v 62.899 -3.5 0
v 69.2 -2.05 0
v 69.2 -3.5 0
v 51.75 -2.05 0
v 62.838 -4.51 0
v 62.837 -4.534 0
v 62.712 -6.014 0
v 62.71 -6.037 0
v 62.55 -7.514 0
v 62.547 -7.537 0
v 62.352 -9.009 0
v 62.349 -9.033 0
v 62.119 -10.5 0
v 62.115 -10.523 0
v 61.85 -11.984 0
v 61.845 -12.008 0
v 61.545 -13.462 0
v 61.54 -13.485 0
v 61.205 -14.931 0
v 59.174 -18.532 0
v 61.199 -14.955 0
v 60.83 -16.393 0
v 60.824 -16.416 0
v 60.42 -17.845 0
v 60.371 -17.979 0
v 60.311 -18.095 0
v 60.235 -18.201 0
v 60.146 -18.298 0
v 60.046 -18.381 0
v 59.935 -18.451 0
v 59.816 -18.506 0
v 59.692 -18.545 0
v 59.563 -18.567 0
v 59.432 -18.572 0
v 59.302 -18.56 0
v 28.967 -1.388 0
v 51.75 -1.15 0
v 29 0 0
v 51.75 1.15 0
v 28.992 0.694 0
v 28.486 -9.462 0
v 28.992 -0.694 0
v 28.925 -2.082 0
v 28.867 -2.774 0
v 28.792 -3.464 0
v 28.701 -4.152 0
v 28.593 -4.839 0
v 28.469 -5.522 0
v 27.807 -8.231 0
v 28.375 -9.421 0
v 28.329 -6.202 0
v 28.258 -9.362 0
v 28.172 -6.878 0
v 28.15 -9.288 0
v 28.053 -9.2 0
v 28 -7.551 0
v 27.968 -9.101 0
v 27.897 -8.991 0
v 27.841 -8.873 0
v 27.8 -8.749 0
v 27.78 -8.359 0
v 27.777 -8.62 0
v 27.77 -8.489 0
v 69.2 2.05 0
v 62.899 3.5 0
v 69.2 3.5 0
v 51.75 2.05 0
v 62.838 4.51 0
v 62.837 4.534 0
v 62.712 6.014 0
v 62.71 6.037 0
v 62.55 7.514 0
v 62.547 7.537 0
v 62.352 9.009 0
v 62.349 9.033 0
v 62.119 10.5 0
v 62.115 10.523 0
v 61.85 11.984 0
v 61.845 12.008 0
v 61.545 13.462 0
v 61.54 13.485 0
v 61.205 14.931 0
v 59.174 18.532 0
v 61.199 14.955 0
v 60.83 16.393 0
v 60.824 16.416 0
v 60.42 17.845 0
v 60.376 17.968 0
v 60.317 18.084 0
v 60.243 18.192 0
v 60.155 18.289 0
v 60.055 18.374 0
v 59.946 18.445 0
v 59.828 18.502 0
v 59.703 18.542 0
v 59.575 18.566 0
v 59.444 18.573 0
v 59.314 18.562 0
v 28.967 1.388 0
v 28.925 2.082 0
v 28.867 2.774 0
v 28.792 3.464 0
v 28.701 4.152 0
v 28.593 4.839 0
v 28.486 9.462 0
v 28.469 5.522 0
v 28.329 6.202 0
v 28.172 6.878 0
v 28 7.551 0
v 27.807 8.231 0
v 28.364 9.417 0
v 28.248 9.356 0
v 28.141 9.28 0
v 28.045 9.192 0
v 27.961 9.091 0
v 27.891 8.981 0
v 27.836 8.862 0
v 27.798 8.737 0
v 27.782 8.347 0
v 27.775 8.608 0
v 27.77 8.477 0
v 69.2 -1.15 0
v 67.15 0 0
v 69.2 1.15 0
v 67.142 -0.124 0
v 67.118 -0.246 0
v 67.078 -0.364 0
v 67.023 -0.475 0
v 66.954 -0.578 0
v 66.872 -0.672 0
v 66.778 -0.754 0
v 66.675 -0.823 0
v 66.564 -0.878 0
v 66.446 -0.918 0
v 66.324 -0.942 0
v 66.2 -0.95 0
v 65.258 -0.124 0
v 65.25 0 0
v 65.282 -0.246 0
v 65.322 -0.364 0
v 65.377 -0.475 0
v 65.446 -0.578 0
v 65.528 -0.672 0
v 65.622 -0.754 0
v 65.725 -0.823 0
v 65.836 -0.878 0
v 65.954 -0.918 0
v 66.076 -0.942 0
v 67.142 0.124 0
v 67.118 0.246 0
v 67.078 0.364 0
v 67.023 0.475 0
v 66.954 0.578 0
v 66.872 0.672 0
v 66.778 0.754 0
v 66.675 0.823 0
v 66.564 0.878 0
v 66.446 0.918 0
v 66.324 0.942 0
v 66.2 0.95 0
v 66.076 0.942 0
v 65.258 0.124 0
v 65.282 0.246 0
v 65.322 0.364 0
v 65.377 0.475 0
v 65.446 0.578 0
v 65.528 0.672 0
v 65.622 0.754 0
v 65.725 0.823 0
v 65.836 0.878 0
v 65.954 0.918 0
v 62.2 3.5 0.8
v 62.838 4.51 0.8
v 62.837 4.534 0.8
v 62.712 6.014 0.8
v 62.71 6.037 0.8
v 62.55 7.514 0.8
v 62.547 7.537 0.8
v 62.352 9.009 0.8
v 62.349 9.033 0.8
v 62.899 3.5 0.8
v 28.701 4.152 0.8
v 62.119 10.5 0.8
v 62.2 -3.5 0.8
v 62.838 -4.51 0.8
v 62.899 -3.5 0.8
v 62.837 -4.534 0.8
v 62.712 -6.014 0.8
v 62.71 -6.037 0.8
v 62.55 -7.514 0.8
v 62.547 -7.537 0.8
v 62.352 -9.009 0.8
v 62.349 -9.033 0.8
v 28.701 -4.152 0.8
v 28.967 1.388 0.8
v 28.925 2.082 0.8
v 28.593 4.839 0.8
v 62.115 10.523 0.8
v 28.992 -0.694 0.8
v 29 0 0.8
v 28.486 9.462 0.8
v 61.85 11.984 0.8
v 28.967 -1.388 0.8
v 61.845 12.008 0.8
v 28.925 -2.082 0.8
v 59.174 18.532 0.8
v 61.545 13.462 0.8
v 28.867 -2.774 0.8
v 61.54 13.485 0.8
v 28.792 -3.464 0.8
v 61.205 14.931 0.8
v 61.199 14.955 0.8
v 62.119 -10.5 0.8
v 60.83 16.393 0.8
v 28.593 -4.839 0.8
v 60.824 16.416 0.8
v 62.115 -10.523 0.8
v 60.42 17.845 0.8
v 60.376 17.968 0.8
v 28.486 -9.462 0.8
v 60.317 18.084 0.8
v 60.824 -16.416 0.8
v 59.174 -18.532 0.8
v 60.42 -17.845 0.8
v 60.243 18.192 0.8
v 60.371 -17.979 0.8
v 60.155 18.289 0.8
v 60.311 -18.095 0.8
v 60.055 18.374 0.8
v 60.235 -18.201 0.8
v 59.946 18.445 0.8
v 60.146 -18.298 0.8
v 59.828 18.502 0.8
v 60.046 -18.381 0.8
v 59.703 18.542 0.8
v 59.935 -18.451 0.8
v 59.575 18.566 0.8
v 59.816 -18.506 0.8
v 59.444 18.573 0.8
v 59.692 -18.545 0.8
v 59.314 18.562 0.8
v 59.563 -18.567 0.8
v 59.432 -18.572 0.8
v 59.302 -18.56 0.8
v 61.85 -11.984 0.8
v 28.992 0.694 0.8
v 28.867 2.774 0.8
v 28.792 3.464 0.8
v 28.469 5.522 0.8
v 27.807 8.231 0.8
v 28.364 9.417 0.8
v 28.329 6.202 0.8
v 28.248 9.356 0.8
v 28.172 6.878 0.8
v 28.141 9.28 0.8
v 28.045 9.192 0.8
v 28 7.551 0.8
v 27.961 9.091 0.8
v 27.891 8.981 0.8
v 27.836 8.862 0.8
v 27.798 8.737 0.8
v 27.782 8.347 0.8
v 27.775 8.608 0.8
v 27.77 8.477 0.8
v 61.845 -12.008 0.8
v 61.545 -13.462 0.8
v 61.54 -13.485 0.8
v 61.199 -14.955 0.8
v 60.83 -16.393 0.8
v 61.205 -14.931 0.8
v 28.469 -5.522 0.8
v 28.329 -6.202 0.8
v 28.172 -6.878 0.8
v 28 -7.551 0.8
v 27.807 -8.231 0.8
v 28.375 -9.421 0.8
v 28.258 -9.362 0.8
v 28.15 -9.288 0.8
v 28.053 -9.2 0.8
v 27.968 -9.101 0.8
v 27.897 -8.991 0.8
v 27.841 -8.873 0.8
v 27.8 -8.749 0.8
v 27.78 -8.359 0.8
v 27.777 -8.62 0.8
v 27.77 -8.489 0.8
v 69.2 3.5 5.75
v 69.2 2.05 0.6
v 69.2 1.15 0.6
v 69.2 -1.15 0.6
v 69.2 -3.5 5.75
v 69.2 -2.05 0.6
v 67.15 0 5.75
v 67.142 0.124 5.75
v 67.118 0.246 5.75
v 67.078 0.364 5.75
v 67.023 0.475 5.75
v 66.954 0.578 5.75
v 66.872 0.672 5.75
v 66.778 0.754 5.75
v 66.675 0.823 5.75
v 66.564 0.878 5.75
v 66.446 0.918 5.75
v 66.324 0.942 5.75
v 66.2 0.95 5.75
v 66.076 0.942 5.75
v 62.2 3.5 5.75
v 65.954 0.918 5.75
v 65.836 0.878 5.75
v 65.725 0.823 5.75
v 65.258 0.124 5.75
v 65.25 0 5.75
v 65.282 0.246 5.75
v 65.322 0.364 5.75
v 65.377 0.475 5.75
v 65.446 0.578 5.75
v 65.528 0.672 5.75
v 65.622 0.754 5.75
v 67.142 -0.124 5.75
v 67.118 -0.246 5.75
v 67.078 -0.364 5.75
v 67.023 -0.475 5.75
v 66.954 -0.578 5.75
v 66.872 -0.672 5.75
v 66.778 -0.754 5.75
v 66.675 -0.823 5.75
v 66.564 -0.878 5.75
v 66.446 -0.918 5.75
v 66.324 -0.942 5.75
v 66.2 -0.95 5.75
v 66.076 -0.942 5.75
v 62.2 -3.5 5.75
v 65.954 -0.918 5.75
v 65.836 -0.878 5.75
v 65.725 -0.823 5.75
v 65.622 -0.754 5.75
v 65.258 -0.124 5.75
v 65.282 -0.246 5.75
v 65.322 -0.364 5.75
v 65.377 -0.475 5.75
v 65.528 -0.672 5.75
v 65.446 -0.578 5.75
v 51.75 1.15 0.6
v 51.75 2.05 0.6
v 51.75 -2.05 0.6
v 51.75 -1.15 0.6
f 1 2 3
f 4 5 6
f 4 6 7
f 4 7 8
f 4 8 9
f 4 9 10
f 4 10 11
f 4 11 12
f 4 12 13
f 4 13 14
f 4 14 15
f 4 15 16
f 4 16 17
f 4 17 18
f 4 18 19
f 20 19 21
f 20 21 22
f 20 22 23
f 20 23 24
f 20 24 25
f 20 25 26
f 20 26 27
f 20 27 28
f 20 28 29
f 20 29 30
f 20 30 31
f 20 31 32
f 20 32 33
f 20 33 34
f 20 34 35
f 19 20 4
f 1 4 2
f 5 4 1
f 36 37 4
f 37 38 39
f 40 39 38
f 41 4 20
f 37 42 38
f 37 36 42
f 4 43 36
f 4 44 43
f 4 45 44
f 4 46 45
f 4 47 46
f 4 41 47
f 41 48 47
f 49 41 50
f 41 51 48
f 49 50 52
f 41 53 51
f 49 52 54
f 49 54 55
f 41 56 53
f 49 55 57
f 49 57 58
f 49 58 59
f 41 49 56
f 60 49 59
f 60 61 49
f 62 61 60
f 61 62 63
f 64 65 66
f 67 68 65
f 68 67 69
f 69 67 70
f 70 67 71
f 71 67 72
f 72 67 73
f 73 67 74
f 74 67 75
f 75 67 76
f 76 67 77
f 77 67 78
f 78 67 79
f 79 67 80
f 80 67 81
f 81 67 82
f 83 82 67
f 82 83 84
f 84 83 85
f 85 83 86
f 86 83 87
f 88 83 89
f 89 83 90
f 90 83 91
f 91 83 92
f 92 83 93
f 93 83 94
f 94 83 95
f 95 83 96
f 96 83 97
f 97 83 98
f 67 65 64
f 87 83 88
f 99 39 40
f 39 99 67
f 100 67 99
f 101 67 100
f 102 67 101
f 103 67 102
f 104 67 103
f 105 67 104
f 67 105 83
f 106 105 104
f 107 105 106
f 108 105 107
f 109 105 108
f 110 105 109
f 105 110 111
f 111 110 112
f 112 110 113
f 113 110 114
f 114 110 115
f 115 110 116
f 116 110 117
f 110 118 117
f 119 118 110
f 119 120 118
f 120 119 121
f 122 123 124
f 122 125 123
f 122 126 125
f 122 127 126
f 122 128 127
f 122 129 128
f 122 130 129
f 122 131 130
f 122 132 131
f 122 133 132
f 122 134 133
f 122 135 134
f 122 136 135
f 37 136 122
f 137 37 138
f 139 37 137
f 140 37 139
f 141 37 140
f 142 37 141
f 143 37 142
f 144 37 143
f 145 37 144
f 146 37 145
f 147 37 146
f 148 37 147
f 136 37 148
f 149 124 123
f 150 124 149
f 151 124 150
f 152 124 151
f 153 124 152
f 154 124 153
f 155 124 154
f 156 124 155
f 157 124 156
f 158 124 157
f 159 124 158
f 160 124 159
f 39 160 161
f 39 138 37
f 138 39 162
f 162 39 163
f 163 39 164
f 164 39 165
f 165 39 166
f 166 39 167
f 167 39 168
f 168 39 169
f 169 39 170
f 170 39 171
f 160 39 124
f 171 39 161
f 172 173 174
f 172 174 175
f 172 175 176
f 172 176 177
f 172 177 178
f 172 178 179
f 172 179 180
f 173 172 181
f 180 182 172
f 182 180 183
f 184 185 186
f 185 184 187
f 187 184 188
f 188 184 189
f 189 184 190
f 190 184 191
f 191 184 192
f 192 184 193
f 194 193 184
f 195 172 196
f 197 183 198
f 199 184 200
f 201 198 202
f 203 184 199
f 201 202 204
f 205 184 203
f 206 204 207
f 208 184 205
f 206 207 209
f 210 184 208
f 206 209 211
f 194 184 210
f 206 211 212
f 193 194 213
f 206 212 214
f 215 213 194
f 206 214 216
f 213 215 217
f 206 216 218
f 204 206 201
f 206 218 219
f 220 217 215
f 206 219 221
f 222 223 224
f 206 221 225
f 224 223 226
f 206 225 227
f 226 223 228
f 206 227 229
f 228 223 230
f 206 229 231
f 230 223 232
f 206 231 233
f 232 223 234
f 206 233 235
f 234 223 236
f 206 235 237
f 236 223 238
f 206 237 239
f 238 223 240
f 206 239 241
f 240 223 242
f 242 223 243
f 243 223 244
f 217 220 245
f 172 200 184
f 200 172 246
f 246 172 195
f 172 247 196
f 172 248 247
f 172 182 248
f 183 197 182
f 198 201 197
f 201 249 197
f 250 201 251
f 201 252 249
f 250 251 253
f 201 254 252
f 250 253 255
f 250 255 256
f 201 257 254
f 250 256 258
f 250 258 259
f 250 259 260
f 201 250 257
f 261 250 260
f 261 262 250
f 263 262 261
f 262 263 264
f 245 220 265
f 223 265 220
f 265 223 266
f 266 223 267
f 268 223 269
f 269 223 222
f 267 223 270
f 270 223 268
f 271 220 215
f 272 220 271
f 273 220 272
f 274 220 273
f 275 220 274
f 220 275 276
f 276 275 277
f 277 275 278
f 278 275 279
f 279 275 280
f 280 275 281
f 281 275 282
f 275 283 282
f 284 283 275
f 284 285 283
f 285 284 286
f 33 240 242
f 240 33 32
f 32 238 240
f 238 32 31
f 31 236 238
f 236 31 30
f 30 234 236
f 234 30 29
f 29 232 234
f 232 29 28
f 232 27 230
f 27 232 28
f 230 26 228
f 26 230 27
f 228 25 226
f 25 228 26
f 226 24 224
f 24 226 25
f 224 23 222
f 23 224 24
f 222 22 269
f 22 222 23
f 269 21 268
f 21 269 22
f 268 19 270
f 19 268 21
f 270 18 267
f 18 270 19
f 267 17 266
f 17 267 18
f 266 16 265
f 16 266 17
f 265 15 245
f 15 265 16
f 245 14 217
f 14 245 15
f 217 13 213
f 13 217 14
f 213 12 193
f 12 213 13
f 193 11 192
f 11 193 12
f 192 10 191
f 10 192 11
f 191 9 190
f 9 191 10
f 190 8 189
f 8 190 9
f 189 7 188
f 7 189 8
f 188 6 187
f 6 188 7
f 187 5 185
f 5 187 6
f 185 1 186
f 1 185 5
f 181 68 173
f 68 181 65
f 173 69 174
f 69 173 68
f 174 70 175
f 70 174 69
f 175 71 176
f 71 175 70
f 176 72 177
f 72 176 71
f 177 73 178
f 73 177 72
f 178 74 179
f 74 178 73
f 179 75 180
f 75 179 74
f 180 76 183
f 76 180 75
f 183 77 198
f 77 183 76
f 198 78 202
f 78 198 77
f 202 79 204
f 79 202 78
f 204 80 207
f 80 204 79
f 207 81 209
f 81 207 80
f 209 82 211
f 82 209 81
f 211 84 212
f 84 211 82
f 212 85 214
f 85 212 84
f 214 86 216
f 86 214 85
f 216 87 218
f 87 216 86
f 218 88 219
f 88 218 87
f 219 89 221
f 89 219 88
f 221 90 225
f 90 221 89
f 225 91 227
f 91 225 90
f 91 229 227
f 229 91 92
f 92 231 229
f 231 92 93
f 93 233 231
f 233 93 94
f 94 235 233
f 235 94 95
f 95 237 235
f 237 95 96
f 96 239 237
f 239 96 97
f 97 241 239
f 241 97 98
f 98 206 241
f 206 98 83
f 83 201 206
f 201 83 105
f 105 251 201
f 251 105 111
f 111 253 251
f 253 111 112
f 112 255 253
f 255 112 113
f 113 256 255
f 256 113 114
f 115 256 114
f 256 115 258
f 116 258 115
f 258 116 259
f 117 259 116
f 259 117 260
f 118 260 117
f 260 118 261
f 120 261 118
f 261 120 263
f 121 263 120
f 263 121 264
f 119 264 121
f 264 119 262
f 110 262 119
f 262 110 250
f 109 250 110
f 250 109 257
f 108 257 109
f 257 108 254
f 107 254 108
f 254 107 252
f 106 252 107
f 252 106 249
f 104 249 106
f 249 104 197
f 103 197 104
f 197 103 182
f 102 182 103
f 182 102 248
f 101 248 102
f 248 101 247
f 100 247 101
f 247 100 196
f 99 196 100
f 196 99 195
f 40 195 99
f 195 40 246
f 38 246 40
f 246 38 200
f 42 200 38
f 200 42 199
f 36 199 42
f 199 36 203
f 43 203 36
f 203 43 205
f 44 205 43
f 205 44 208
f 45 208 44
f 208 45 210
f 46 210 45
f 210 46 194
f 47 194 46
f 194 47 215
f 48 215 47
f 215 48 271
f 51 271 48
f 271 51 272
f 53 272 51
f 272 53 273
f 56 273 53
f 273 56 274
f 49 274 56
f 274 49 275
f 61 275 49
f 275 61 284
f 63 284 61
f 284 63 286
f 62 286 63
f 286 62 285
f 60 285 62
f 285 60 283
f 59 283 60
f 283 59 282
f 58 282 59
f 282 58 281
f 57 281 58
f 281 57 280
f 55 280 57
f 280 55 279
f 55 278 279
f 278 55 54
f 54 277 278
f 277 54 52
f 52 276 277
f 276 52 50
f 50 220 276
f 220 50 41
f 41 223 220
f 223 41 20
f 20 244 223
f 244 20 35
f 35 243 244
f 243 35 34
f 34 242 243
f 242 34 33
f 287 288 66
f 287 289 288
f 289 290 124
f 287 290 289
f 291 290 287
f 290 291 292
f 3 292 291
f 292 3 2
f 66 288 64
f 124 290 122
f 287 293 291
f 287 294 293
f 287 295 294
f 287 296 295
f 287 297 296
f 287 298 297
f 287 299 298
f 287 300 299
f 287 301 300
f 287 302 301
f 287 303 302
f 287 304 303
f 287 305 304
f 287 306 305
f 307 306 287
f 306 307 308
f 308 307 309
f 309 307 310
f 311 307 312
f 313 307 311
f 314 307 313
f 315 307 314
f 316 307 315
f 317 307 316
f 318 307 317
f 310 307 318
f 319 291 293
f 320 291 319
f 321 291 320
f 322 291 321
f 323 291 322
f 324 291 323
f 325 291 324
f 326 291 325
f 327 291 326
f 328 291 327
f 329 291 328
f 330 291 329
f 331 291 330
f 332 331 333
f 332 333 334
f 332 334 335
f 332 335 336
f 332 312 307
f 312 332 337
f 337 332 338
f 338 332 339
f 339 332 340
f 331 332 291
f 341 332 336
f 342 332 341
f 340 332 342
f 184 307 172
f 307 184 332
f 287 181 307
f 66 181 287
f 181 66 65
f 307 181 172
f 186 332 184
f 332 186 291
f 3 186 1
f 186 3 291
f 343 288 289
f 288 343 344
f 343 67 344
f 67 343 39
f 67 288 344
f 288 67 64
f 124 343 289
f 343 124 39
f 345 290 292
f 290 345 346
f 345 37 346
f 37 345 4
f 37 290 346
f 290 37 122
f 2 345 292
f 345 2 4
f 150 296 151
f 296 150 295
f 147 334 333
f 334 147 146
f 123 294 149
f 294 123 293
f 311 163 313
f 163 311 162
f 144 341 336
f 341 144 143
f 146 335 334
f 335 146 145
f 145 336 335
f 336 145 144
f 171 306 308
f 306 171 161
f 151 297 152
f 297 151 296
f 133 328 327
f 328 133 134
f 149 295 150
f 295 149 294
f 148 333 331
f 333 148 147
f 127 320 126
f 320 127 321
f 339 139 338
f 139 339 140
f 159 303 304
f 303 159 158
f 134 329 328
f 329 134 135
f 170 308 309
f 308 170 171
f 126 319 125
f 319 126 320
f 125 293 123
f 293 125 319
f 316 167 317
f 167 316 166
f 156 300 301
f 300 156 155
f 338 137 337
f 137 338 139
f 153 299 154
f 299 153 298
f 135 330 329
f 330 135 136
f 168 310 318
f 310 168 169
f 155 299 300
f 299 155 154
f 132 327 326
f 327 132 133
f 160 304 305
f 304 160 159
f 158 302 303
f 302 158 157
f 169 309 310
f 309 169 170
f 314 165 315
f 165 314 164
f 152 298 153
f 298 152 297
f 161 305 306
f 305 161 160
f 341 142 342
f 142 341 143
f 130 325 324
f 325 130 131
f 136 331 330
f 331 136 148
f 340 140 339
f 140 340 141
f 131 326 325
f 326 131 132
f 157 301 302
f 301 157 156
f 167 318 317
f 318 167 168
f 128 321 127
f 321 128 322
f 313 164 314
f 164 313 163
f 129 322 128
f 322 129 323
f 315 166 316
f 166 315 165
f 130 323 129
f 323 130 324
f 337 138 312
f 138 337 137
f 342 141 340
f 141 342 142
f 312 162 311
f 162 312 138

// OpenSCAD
// file: parameters.scad
// =============================================================================
// Gen-BG — nightly 2026-10-04 (physics_scorer, honest magpylib watts)
// 8-pole / 9-coil dual rotor (best winding factor 0.945) pushed out to RL 46 with 9.9 mm tall copper on steel-seated magnets; 3 smaller coils per phase and less wire (257 m) than 6-coil.
// Clocking 0 deg (magnets N facing S) + D-flat keyed bore + index notch + flip-symmetric hole map.
// Windable 2-piece bobbin; turns = physics_scorer turns_fit; copper only between flanges.
// Steel back-iron: two 3.0 mm mild-steel discs (steel_backiron_disc.dxf); magnets sit ON the steel
// (through-pockets) -> score with --back-iron.
// =============================================================================
topology            = "dual_rotor";

// --- Wire / winding (physics_scorer winding-fit) -------------------------------
wire_awg            = 26;
wire_od             = 0.45;     // insulated OD mm (bare 0.405)
fill_realistic      = 0.60;     // insulated-wire area / window, hand-wound layered
turns               = 364;       // = physics_scorer turns_fit (do NOT raise)
coil_former_type    = "bobbin";
coil_core_inset     = 9.75;     // radial copper build: hub = copper boundary inset by this
wind_build_axial    = 0.0;      // nothing proud of the flanges
wind_build_radial   = 0.0;

// --- Bobbin (base + lid) ---------------------------------------------------------
coil_id_r           = 30.00;    // copper boundary sector
coil_od_r           = 62.00;
span_deg            = 32.93;    // = pitch - 2*asin((wall+0.85)/coil_id_r) -> >=1.2 mm stator web
former_web          = 9.90;     // copper height between flanges (TALL copper: steel keeps Bz up)
flange_t            = 0.80;     // >= 0.8 mm FDM wall rule (tall winds push on the flanges)
wall                = 1.00;     // flange lip beyond copper
former_bare_h       = former_web + 2 * flange_t;
coil_envelope_h     = former_bare_h + 2 * wind_build_axial;
tab_w               = 7.0;
tab_len             = 7.0;
tab_h               = former_bare_h / 2;
pin_d               = 1.9;      // 1.75 mm filament locating pin
coil_mount_r        = coil_od_r + 0.2 + 4.0;
lead_y              = 1.6;
lead_slot_w         = 0.9;
lead_groove_d       = 0.6;

// --- Gap -------------------------------------------------------------------------
run_clear           = 0.50;     // rotor face -> flange
gap_spacer_h        = run_clear + wind_build_axial;
m2m                 = coil_envelope_h + 2 * run_clear;   // rotor face to rotor face (= gap_sleeve length)

// --- Stator ----------------------------------------------------------------------
coil_stations       = 9;
bay_clear           = 0.25;
stator_thick        = former_bare_h;                        // bobbins flush both faces
stator_od           = 157.0;
shaft_clear_stator  = 14.0;     // stator is static; gap sleeve OD 12 spins inside

// --- Rotor(s) --------------------------------------------------------------------
magnet_Br           = 1.43;     // N52
magnet_d_large      = 20.0;
magnet_h_large      = 5.0;      // one O20x5 per pocket
magnet_h_small      = 5.0;      // one O5x5 per pocket
halbach_magnetisation = "diametric"; // O5x5 assist magnets MUST be DIAMETRICALLY magnetised (tangential)
rotor_b_same_axis   = true;     // same-index magnets share one axis: N faces S across the gap
large_pocket_d      = 20.3;
small_pocket_d      = 5.3;
pocket_h            = 5.10;     // THROUGH the carrier: magnet back face sits on the steel disc
large_n             = 8;
R_large             = 46.0;
R_small_inner       = 32.0;
R_small_mid         = 46.0;
R_small_outer       = 63.0;
small_r_list        = [R_small_inner, R_small_mid, R_small_outer];   // O5 pockets between poles
carrier_od          = 135.0;
carrier_thick       = pocket_h;
hub_h               = 10.0;
hub_od              = 24.0;     // slim hub so the M4 brace rods fit at R~18 inside the coil ring
hub_insert_d        = 4.0;      // M3 heat-set insert, radial, bears on the D-flat
rotor_b_offset_deg  = 0.0;      // CLOCKING: magnets directly opposite
shaft_key           = "dflat";
dflat_depth         = 0.5;      // 8 mm shaft with 0.5 mm flat (7.5 across flat)
index_notch_d       = 3.0;

// --- Steel back-iron (buyable laser-cut) -------------------------------------------
steel_t             = 3.0;      // mild steel thickness (not modelled by the image method; >=3 avoids saturation)
steel_center_hole   = 26.0;     // slips over the rotor hub (OD 24)

// --- Modular MAX interface ----------------------------------------------------------
shaft_bore          = 8.35;
dflat_x             = 4.0 - dflat_depth + (shaft_bore - 8.0) / 2;
bearing_d           = 21.85;
bearing_h           = 7.2;
m3_clear            = 3.5;
bolt_r_inner        = 27.0;     // M3 steel-disc clamp bolts (inside the magnet ring)
bolt_n_inner        = 4;
bolt_inner_angles   = [0, 90, 180, 270];
bolt_r_outer        = 59.0;     // M3 steel-disc clamp bolts (outside the magnet ring)
bolt_outer_angles   = [0, 90, 180, 270];
flange_bolt_r       = 73.5;     // frame rods: OUTSIDE the rotor OD (rotors spin inside them)
flange_bolt_n       = 9;
flange_bolt_offset  = 20.00;    // between coil stations -> never cuts a lead groove/tab
brace_r             = 18.0;
brace_d             = 4.3;      // temporary M4 jack rods (assembly only)
brace_n             = 4;
brace_angles        = [45, 135, 225, 315];          // flip-symmetric

spacer_pad_od       = 14.0;
spacer_pad_id       = m3_clear;
endbell_od          = 157.0;
endbell_thick       = 8.0;
endbell_shaft_clear = 10.0;
collar_h            = 10.0;
standoff_od         = 9.0;
frame_standoff_h    = run_clear + carrier_thick + hub_h + collar_h + 2.0;
sleeve_od           = 12.0;
plate_max_mm        = 410;

$fn = 64;
// main file
// Gen-BG — bobbin LID (top flange + locating tab). Print x9, flange face DOWN on the bed.
// CA-glue onto the hub top BEFORE winding. Tab = lap joint into the stator tab pocket; 1.75 mm filament
// pin through pin hole + stator ledge, trim flush. Lead slots carry both leads flush.
include <parameters.scad>;
$fn = 48;
module sector_2d(r_in, r_out, ang) {
    polygon([
        for (a = [-ang/2 : ang/24 : ang/2]) [r_in*cos(a), r_in*sin(a)],
        for (a = [ang/2 : -ang/24 : -ang/2]) [r_out*cos(a), r_out*sin(a)]
    ]);
}
module footprint_2d() { offset(r=wall) sector_2d(coil_id_r, coil_od_r, span_deg); }
module hub_2d()       { offset(delta=-coil_core_inset) sector_2d(coil_id_r, coil_od_r, span_deg); }

difference() {
    union() {
        linear_extrude(flange_t) footprint_2d();
        translate([coil_od_r + 0.2, -tab_w/2, 0]) cube([tab_len, tab_w, tab_h]);
    }
    translate([coil_mount_r, 0, -0.1]) cylinder(d=pin_d, h=tab_h + 1);
    for (y = [lead_y, -lead_y])
        translate([coil_od_r - coil_core_inset - 0.5, y - lead_slot_w/2, -0.1])
            cube([coil_core_inset + tab_len + 2, lead_slot_w, lead_groove_d + 0.1]);
}
